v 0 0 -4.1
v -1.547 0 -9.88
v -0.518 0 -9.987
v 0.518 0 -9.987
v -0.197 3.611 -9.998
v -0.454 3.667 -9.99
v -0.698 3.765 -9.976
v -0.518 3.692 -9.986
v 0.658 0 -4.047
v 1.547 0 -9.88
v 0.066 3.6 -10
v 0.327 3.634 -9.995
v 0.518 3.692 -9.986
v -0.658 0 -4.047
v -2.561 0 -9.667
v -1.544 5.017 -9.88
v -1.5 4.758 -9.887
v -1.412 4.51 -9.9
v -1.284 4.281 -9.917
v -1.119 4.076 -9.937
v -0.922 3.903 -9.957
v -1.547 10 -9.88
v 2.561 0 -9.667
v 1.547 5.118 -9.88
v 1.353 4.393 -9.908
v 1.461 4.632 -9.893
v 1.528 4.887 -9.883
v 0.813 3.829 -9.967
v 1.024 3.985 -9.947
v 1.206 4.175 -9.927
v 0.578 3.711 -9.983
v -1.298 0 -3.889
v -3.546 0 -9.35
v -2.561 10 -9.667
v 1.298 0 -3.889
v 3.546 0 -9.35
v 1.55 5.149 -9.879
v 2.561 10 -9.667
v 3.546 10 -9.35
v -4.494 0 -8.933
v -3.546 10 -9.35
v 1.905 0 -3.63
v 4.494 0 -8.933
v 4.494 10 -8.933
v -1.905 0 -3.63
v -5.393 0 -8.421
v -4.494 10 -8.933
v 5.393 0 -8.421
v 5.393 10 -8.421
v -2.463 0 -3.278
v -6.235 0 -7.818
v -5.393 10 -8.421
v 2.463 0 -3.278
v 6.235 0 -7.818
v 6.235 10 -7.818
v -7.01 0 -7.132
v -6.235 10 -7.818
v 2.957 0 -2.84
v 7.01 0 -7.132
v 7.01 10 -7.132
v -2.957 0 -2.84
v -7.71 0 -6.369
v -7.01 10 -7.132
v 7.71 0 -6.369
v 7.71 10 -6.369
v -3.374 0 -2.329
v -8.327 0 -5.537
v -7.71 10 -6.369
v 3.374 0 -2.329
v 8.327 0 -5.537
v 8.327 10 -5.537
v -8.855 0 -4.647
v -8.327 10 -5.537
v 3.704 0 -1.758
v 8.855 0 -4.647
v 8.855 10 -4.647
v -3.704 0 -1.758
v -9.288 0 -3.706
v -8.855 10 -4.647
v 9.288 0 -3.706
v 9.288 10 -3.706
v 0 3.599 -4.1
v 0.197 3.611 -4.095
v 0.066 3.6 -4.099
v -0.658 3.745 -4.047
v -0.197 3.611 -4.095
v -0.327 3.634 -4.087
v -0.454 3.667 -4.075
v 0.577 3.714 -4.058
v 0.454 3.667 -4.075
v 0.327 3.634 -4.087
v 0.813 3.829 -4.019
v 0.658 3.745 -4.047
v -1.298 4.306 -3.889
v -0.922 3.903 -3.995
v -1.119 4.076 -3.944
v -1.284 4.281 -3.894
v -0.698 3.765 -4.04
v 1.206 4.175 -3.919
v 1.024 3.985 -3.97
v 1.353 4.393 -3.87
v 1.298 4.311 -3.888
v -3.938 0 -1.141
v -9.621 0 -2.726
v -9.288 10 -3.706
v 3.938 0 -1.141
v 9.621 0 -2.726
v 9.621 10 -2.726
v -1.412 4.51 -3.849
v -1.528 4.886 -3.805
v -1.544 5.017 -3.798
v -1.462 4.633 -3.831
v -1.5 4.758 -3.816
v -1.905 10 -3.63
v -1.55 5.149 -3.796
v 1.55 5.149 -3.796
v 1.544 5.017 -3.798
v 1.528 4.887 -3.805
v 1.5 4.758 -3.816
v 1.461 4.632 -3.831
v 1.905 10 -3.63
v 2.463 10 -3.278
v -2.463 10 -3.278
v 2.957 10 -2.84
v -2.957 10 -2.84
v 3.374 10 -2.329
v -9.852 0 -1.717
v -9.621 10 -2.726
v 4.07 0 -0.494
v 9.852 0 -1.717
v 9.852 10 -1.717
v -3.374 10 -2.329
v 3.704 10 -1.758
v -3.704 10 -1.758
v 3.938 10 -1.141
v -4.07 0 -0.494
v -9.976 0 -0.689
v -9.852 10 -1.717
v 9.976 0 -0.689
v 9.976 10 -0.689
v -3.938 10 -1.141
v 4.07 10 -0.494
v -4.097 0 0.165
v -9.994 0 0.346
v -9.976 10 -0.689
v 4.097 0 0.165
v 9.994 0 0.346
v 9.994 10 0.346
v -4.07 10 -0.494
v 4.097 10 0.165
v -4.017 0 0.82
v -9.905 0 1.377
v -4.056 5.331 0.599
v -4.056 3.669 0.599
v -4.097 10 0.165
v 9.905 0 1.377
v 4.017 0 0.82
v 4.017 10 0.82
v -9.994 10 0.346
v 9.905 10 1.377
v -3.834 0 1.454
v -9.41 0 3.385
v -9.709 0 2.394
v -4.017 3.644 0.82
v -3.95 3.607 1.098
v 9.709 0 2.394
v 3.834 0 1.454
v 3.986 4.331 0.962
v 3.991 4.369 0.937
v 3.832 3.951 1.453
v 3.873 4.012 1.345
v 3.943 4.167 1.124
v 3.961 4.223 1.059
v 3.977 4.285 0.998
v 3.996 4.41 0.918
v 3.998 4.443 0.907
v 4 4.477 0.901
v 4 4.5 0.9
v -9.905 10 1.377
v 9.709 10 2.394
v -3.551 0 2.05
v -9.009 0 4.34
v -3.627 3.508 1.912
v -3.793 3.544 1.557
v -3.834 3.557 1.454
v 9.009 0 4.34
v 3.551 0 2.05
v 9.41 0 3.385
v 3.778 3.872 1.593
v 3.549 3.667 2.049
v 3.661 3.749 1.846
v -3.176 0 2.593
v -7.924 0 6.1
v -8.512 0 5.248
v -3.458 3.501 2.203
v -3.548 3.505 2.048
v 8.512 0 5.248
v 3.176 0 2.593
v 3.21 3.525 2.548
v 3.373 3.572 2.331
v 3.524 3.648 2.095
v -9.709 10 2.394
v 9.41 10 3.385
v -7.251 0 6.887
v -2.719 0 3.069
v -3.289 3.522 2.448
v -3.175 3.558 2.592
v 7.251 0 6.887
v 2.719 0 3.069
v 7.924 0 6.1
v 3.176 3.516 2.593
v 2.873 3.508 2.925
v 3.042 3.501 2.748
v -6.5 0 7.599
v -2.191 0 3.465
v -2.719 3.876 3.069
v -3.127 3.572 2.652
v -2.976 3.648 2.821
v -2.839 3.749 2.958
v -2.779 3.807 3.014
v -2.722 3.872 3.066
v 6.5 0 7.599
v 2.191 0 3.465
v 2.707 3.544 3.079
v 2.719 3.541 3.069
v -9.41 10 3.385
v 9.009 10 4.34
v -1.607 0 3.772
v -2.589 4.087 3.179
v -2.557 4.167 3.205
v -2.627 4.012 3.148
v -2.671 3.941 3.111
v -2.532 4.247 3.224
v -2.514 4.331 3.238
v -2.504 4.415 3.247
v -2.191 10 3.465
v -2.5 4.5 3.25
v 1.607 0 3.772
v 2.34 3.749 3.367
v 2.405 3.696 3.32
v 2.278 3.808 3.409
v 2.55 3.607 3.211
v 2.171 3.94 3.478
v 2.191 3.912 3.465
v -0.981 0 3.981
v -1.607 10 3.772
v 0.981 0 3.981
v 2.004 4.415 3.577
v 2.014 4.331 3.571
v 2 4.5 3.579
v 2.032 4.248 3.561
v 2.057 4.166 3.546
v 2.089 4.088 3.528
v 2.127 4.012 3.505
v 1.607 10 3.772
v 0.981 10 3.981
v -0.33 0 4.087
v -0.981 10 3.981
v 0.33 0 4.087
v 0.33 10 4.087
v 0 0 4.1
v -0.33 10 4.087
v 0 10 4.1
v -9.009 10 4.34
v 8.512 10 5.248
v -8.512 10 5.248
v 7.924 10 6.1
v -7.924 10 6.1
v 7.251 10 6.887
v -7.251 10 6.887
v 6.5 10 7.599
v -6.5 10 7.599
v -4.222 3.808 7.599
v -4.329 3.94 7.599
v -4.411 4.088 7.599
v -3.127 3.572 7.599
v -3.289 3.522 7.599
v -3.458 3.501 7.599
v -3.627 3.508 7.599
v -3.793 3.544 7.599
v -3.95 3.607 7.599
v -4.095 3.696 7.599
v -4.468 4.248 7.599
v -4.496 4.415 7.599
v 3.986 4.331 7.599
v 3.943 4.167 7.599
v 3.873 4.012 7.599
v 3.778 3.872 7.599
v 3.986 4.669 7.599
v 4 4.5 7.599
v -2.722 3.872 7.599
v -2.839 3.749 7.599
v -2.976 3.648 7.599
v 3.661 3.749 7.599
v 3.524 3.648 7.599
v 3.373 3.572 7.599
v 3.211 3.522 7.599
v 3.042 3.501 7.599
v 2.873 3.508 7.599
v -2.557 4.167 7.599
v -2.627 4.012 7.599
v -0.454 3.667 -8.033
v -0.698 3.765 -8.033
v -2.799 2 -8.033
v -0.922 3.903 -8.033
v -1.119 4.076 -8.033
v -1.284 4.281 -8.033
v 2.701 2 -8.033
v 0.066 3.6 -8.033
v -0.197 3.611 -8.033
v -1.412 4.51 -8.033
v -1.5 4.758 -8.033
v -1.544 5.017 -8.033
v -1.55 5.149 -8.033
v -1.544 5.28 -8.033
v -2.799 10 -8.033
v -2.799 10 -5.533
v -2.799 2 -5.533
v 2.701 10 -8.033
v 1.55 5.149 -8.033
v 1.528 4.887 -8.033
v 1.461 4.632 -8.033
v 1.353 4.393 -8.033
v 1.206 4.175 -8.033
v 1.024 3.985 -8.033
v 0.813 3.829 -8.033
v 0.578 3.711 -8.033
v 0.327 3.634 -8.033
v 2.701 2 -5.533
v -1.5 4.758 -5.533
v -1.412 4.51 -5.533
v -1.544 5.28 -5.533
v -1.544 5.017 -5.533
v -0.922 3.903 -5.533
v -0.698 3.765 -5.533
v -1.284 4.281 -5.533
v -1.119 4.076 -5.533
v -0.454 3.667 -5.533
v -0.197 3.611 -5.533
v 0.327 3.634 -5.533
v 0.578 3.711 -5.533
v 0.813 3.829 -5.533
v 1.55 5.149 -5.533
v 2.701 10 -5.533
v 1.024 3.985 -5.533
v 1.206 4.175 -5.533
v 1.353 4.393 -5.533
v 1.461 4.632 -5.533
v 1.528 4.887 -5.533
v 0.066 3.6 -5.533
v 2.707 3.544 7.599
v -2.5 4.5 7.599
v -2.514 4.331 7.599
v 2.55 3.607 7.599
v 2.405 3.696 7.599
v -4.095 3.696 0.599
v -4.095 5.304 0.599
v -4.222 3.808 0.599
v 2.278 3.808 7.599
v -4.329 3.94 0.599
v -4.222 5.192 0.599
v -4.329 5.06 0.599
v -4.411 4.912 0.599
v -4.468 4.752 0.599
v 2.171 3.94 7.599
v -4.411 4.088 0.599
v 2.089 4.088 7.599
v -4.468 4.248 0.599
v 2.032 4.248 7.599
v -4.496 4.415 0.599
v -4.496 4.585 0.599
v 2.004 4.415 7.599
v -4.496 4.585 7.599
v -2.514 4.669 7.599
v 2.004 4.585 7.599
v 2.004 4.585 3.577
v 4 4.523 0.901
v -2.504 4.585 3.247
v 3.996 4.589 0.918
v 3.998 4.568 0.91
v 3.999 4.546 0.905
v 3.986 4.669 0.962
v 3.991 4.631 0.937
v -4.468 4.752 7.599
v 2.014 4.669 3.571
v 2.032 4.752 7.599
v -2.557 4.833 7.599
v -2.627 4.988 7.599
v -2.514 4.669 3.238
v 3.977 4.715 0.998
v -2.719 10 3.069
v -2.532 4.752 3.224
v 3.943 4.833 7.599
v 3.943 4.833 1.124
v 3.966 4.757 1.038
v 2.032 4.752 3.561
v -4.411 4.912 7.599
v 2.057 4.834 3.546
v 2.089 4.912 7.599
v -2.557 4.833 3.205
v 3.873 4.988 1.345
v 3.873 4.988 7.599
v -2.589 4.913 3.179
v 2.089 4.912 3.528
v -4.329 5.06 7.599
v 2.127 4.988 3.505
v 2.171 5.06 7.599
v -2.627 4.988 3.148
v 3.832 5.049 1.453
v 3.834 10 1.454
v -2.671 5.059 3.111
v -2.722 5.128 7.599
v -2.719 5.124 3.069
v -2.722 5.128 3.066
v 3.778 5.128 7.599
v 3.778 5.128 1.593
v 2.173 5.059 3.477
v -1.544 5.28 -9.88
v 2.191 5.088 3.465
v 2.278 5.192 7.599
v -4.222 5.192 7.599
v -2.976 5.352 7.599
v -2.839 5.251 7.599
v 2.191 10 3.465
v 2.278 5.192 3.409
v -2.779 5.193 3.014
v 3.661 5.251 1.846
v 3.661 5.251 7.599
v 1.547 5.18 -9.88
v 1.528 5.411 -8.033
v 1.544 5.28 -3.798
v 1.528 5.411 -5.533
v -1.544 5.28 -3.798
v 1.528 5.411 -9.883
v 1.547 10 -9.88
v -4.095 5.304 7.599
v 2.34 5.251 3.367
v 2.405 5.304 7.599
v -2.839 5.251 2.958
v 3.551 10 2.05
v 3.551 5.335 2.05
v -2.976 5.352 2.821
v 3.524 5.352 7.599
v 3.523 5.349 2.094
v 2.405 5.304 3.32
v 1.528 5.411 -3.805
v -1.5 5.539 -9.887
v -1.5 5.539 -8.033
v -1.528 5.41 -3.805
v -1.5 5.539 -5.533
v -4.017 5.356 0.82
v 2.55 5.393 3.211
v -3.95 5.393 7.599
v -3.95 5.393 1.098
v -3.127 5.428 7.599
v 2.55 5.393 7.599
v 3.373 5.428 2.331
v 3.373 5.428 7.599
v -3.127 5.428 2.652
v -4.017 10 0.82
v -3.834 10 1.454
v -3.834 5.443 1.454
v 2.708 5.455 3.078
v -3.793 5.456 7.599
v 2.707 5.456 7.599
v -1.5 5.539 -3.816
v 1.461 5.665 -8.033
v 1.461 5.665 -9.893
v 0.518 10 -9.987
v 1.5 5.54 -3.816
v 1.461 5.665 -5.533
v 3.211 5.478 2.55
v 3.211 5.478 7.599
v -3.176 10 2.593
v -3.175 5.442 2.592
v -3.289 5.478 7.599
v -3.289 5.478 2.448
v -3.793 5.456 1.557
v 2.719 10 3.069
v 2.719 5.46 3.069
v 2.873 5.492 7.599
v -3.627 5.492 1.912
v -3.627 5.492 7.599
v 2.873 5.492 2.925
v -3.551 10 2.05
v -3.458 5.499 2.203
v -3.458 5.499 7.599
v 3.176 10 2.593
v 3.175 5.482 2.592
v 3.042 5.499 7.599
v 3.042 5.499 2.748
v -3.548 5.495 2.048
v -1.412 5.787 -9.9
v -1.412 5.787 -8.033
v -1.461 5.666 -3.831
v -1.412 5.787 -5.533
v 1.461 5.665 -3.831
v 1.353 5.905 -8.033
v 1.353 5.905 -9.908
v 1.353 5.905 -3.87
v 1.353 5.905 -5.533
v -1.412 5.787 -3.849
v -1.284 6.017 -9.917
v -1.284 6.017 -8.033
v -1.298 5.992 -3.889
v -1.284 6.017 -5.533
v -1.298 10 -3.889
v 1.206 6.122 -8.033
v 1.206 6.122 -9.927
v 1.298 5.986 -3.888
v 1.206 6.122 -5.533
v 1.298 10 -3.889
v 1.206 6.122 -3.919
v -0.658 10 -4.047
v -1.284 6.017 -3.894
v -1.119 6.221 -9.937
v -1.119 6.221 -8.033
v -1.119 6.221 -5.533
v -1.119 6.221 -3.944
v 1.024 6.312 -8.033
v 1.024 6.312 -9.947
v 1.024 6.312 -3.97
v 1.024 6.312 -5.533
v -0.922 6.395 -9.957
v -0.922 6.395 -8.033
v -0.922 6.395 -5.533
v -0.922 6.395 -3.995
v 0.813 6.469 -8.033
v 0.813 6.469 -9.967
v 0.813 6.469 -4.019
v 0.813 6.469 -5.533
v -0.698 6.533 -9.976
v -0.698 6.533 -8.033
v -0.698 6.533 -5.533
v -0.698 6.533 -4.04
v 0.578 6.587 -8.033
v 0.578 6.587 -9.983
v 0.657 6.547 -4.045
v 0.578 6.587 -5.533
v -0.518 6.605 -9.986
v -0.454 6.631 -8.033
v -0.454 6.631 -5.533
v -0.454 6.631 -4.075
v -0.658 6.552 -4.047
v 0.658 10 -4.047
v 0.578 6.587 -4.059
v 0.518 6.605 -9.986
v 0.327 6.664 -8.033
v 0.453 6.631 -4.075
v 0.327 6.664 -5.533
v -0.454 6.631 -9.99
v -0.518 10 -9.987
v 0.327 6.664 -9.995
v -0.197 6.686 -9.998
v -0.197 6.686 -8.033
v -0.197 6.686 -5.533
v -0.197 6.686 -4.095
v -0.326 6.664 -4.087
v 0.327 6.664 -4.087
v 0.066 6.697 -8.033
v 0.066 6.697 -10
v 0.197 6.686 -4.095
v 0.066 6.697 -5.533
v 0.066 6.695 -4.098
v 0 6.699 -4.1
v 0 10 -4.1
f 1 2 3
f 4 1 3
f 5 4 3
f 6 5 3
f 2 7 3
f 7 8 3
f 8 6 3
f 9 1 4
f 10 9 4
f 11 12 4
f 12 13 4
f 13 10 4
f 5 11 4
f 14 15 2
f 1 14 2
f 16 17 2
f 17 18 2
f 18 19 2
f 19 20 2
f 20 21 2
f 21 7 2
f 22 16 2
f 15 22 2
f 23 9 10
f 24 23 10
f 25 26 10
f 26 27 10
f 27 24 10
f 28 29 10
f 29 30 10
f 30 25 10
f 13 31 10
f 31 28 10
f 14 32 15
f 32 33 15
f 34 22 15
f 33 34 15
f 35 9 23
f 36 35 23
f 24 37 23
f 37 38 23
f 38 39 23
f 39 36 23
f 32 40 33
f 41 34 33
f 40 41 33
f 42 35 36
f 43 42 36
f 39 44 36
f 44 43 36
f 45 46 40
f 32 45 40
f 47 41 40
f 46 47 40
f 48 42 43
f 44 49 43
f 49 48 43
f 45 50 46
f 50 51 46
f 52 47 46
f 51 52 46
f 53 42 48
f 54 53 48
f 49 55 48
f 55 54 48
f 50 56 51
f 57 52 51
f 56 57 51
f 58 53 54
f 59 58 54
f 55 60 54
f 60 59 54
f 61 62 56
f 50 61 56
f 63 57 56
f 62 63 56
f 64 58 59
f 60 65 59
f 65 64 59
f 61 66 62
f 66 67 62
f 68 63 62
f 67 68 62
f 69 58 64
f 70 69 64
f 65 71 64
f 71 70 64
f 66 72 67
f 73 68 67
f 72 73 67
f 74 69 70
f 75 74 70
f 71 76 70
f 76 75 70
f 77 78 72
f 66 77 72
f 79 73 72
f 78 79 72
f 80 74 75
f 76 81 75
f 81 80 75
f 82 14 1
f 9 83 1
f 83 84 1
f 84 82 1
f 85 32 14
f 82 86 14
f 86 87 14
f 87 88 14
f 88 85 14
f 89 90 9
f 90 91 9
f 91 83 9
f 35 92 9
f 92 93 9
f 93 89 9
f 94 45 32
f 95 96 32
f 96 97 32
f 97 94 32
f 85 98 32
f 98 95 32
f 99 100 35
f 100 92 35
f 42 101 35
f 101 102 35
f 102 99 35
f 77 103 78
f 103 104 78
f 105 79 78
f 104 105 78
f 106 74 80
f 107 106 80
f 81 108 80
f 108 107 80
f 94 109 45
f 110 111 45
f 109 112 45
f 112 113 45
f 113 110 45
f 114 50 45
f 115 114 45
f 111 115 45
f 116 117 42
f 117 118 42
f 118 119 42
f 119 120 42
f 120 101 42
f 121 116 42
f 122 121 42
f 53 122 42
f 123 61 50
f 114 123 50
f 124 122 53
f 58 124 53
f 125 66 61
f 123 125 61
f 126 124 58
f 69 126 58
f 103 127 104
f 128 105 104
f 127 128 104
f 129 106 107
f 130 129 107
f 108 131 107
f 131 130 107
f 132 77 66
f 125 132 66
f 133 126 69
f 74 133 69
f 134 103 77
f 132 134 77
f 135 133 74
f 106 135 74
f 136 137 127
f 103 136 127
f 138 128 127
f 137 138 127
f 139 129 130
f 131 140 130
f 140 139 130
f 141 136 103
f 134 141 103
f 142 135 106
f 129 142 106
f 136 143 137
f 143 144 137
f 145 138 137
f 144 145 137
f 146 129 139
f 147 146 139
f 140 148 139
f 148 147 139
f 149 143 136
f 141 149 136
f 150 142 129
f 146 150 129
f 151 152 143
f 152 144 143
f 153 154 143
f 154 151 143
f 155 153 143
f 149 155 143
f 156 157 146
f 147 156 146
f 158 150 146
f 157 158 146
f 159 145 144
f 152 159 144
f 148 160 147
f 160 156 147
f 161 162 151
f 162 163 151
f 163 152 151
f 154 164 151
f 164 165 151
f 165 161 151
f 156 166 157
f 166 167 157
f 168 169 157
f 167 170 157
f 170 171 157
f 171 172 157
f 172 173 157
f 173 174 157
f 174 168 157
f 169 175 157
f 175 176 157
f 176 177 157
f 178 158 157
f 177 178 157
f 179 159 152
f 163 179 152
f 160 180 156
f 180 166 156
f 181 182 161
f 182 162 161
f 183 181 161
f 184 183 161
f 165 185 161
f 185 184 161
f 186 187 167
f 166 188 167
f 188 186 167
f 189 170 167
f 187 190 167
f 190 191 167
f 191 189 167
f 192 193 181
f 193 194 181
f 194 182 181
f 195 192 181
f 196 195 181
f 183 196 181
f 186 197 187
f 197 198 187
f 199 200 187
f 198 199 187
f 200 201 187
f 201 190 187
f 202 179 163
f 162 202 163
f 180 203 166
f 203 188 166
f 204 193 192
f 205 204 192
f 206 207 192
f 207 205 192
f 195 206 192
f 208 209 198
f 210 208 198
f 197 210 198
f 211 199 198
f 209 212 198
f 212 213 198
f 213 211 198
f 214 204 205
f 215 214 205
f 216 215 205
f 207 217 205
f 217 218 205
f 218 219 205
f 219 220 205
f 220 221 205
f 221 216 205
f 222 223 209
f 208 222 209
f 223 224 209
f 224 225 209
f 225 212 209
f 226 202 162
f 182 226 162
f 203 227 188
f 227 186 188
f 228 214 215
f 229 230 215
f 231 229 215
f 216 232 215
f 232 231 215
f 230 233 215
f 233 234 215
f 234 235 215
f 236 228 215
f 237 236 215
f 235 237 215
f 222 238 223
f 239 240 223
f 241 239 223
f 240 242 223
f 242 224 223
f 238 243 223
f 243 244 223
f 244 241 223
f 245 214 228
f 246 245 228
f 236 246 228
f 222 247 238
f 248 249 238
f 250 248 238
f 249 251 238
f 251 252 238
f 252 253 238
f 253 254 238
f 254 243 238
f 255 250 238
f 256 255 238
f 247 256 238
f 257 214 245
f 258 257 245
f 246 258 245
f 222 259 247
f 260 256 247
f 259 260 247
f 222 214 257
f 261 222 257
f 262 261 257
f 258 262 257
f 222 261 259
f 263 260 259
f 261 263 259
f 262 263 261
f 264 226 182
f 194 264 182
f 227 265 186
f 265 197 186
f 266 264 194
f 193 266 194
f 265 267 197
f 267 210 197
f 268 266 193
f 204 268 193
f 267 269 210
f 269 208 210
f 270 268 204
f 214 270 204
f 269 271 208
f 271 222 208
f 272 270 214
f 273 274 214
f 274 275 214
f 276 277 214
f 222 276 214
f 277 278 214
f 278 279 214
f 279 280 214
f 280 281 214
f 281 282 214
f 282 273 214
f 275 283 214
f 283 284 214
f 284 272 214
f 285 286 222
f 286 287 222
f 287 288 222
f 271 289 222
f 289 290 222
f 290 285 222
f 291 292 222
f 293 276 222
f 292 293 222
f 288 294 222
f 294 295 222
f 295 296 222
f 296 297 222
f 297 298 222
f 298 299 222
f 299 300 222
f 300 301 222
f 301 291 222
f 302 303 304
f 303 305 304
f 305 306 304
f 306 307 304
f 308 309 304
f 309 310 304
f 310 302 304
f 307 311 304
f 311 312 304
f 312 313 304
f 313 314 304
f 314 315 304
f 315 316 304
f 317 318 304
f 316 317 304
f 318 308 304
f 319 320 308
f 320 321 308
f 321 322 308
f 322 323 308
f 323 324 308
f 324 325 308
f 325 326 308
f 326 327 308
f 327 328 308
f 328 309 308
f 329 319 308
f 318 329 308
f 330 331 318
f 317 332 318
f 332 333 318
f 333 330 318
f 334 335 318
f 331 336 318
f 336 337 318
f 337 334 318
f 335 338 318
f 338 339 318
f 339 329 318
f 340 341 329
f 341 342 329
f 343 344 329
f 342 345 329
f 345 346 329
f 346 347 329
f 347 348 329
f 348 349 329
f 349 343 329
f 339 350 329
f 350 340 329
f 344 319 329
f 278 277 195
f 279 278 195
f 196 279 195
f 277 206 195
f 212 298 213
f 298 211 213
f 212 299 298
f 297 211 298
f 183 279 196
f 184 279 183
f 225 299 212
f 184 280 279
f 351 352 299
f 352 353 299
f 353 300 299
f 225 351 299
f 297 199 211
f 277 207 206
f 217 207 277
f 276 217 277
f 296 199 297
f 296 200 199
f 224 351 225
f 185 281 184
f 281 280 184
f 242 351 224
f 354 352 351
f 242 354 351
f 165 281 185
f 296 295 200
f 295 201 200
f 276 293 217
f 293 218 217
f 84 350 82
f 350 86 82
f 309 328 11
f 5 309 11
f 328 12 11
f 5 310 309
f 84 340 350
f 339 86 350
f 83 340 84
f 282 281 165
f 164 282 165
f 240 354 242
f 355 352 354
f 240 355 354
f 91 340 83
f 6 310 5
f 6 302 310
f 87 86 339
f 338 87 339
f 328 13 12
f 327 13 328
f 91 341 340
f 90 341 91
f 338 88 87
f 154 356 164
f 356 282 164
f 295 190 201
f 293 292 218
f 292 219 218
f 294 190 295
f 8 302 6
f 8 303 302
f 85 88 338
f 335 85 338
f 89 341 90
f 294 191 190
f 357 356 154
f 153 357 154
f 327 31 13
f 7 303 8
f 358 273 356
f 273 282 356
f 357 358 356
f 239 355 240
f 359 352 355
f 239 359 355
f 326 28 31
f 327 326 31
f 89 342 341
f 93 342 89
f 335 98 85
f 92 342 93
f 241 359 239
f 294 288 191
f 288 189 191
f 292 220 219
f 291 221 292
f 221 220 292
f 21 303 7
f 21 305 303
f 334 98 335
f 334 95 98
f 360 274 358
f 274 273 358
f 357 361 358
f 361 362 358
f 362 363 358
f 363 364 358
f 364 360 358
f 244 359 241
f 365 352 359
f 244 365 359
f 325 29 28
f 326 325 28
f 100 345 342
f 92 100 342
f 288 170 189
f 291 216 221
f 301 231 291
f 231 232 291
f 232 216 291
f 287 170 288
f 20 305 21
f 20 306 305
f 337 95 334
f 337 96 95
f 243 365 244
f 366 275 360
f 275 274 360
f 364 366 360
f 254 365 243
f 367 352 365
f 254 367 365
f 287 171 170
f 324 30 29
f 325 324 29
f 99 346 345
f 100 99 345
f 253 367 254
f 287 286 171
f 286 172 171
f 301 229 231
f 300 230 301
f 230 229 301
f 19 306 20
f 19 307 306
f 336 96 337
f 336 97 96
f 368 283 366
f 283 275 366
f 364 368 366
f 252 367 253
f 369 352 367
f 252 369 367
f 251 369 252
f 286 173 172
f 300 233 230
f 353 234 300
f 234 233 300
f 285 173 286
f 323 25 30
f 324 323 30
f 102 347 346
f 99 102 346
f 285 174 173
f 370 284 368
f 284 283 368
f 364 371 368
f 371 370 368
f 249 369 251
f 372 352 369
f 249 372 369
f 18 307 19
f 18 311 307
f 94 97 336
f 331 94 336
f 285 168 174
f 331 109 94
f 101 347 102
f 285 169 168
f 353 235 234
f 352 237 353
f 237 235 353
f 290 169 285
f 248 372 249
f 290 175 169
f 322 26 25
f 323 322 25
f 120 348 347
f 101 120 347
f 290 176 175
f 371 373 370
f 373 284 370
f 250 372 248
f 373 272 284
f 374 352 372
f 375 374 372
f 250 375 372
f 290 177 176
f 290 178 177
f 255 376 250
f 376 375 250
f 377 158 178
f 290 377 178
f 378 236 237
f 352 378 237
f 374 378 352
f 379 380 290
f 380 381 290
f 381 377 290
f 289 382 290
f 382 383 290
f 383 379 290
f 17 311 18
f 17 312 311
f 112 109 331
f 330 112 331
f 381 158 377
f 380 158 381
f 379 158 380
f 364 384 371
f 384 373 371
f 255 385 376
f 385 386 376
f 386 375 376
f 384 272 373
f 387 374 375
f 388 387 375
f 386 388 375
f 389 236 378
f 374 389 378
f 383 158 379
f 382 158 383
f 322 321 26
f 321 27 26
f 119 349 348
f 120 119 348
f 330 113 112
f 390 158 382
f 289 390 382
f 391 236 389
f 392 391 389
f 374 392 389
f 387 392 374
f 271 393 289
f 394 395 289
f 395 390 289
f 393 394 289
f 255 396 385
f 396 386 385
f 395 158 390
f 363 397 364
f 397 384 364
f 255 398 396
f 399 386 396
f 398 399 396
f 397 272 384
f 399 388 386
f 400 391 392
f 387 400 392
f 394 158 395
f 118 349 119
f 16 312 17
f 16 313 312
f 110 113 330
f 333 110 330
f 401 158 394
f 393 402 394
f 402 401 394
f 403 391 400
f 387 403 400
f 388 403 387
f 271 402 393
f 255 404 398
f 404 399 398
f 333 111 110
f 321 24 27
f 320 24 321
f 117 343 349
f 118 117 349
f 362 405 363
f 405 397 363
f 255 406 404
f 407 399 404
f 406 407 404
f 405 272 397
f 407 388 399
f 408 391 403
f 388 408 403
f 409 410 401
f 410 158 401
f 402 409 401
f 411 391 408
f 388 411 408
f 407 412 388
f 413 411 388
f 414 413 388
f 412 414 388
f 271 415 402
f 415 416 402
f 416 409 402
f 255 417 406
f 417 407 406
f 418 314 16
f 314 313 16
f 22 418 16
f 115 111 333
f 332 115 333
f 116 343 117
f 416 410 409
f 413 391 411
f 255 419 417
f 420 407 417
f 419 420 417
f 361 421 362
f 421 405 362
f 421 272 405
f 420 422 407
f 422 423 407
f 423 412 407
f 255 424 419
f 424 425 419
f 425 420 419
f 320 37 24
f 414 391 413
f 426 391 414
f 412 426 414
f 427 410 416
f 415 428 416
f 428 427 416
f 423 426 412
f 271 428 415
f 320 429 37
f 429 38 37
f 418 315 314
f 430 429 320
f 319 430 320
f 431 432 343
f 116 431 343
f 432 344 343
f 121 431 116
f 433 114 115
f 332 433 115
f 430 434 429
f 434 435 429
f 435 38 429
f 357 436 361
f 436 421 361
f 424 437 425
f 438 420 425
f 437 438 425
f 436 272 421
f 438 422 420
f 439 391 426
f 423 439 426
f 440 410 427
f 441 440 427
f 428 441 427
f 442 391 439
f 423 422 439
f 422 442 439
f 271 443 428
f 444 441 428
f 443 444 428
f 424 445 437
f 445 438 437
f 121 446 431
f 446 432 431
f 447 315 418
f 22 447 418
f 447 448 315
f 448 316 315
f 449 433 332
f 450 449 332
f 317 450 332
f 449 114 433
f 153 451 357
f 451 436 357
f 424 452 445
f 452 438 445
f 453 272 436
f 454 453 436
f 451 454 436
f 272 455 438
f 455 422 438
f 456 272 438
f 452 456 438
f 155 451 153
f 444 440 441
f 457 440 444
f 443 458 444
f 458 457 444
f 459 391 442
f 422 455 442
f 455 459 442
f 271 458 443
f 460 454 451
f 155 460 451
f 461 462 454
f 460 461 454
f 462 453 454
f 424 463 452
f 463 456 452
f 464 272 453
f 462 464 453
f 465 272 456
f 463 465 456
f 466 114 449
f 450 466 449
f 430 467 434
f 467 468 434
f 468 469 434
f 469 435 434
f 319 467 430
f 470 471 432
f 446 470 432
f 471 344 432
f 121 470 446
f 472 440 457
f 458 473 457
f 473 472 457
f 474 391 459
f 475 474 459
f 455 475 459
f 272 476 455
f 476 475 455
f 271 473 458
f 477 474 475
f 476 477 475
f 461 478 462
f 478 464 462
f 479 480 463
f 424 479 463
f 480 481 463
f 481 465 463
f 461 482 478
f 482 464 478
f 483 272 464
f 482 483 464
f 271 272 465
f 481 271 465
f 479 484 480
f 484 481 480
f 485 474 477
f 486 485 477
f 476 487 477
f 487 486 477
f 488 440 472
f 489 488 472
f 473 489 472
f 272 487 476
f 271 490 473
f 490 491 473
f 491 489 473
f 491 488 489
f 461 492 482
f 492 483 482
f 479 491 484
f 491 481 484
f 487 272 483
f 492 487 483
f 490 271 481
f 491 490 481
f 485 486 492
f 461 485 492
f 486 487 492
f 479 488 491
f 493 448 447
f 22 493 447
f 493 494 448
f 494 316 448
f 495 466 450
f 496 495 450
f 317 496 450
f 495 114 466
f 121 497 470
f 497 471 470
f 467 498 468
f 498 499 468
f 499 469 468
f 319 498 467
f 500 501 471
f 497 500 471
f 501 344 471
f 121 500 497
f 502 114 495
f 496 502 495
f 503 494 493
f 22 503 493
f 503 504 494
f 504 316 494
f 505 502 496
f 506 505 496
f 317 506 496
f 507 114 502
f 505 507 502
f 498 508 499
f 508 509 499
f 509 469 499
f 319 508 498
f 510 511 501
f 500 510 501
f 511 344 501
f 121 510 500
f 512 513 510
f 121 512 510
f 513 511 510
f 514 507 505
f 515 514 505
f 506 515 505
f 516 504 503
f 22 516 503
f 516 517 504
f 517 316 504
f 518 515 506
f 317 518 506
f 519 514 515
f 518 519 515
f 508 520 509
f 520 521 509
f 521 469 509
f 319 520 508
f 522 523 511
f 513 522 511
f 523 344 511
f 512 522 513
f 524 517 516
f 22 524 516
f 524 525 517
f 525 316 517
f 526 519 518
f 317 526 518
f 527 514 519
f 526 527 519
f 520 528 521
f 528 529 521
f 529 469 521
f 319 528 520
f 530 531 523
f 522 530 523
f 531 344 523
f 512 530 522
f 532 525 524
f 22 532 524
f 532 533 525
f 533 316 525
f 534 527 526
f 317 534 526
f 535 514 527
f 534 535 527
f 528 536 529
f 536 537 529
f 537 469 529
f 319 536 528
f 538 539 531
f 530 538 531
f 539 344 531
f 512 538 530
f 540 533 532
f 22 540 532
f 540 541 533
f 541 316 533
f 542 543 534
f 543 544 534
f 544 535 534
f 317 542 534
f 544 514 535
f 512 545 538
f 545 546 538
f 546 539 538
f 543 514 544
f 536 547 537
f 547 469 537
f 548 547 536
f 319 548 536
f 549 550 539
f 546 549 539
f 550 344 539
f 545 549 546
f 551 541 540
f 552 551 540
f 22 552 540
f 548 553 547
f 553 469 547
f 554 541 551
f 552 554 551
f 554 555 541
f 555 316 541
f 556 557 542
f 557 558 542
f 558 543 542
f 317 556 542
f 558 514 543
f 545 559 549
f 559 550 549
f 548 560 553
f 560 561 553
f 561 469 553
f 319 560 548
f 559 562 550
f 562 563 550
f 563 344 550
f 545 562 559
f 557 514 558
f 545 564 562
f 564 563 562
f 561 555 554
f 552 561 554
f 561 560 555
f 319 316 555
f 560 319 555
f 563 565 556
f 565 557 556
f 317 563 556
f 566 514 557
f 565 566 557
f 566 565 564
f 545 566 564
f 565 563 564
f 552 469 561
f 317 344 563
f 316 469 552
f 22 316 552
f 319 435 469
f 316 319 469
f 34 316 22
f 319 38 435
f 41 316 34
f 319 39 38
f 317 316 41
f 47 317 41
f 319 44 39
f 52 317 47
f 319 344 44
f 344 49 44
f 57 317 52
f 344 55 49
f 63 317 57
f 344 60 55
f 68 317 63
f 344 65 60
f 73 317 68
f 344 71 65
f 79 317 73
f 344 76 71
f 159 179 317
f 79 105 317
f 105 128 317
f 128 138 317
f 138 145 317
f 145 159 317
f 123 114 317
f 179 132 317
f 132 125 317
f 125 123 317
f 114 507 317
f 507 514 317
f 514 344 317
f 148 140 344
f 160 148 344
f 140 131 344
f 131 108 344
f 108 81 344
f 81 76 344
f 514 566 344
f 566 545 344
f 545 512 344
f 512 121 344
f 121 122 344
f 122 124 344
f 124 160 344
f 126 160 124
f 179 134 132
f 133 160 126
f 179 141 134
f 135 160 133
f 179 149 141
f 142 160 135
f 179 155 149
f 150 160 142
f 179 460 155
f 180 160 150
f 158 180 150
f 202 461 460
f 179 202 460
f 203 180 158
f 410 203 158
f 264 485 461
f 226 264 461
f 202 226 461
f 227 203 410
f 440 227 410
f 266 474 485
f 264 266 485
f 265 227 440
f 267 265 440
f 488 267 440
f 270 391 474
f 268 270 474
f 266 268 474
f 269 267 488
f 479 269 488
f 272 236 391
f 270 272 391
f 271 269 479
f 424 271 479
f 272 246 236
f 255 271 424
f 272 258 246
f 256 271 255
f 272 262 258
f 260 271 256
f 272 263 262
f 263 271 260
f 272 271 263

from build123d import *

# Parameters (mm, degrees)
SKETCH_1_R          = 10
SKETCH_1_R_2        = 4.1
EXTRUDE_1_DEPTH     = 10
CUT_EXTRUDE_1_DEPTH = 18.320508076
SKETCH_3_R          = 1
CUT_EXTRUDE_2_DEPTH = 7
SKETCH_4_R          = 1.55
CUT_EXTRUDE_3_DEPTH = 11
SKETCH_5_W          = 5.5
SKETCH_5_H          = 2.5
CUT_EXTRUDE_4_DEPTH = 8


with BuildPart() as part:
    # 草图1 → 凸台-拉伸1 (new body)
    with BuildSketch(Plane(origin=(0, 0, 0), x_dir=(1, 0, 0), z_dir=(0, 1, 0))):
        with Locations(Location((0, 0, 0), (0, 0, 270))):
            Circle(SKETCH_1_R)
        with Locations(Location((0, 0, 0), (0, 0, 270))):
            Circle(SKETCH_1_R_2, mode=Mode.SUBTRACT)
    extrude(amount=EXTRUDE_1_DEPTH)

    # 草图2 → 切除-拉伸1 (cut, through all)
    with BuildSketch(Plane(origin=(0, 10, 0), x_dir=(1, 0, 0), z_dir=(0, 1, 0))):
        with BuildLine():
            Line((-6.5, -7.599342077), (6.5, -7.599342077))
            ThreePointArc((6.5, -7.599342077), (0, -10), (-6.5, -7.599342077))
        make_face()
    extrude(amount=-CUT_EXTRUDE_1_DEPTH, mode=Mode.SUBTRACT)

    # 草图3 → 切除-拉伸2 (cut)
    with BuildSketch(Plane.XY.offset(7.599342077)):
        with Locations((-3.5, 4.5)):
            Circle(SKETCH_3_R)
        with Locations((3, 4.5)):
            Circle(SKETCH_3_R)
    extrude(amount=-CUT_EXTRUDE_2_DEPTH, mode=Mode.SUBTRACT)

    # 草图4 → 切除-拉伸3 (cut)
    with BuildSketch(Plane.XY.offset(-2.400657923)):
        with Locations((0, 5.148756005)):
            Circle(SKETCH_4_R)
    extrude(amount=-CUT_EXTRUDE_3_DEPTH, mode=Mode.SUBTRACT)

    # 草图5 → 切除-拉伸4 (cut)
    with BuildSketch(Plane(origin=(0, 10, 0), x_dir=(1, 0, 0), z_dir=(0, 1, 0))):
        with Locations((-0.049141686, 6.782816016)):
            Rectangle(SKETCH_5_W, SKETCH_5_H)
    extrude(amount=-CUT_EXTRUDE_4_DEPTH, mode=Mode.SUBTRACT)


solid = part.part
